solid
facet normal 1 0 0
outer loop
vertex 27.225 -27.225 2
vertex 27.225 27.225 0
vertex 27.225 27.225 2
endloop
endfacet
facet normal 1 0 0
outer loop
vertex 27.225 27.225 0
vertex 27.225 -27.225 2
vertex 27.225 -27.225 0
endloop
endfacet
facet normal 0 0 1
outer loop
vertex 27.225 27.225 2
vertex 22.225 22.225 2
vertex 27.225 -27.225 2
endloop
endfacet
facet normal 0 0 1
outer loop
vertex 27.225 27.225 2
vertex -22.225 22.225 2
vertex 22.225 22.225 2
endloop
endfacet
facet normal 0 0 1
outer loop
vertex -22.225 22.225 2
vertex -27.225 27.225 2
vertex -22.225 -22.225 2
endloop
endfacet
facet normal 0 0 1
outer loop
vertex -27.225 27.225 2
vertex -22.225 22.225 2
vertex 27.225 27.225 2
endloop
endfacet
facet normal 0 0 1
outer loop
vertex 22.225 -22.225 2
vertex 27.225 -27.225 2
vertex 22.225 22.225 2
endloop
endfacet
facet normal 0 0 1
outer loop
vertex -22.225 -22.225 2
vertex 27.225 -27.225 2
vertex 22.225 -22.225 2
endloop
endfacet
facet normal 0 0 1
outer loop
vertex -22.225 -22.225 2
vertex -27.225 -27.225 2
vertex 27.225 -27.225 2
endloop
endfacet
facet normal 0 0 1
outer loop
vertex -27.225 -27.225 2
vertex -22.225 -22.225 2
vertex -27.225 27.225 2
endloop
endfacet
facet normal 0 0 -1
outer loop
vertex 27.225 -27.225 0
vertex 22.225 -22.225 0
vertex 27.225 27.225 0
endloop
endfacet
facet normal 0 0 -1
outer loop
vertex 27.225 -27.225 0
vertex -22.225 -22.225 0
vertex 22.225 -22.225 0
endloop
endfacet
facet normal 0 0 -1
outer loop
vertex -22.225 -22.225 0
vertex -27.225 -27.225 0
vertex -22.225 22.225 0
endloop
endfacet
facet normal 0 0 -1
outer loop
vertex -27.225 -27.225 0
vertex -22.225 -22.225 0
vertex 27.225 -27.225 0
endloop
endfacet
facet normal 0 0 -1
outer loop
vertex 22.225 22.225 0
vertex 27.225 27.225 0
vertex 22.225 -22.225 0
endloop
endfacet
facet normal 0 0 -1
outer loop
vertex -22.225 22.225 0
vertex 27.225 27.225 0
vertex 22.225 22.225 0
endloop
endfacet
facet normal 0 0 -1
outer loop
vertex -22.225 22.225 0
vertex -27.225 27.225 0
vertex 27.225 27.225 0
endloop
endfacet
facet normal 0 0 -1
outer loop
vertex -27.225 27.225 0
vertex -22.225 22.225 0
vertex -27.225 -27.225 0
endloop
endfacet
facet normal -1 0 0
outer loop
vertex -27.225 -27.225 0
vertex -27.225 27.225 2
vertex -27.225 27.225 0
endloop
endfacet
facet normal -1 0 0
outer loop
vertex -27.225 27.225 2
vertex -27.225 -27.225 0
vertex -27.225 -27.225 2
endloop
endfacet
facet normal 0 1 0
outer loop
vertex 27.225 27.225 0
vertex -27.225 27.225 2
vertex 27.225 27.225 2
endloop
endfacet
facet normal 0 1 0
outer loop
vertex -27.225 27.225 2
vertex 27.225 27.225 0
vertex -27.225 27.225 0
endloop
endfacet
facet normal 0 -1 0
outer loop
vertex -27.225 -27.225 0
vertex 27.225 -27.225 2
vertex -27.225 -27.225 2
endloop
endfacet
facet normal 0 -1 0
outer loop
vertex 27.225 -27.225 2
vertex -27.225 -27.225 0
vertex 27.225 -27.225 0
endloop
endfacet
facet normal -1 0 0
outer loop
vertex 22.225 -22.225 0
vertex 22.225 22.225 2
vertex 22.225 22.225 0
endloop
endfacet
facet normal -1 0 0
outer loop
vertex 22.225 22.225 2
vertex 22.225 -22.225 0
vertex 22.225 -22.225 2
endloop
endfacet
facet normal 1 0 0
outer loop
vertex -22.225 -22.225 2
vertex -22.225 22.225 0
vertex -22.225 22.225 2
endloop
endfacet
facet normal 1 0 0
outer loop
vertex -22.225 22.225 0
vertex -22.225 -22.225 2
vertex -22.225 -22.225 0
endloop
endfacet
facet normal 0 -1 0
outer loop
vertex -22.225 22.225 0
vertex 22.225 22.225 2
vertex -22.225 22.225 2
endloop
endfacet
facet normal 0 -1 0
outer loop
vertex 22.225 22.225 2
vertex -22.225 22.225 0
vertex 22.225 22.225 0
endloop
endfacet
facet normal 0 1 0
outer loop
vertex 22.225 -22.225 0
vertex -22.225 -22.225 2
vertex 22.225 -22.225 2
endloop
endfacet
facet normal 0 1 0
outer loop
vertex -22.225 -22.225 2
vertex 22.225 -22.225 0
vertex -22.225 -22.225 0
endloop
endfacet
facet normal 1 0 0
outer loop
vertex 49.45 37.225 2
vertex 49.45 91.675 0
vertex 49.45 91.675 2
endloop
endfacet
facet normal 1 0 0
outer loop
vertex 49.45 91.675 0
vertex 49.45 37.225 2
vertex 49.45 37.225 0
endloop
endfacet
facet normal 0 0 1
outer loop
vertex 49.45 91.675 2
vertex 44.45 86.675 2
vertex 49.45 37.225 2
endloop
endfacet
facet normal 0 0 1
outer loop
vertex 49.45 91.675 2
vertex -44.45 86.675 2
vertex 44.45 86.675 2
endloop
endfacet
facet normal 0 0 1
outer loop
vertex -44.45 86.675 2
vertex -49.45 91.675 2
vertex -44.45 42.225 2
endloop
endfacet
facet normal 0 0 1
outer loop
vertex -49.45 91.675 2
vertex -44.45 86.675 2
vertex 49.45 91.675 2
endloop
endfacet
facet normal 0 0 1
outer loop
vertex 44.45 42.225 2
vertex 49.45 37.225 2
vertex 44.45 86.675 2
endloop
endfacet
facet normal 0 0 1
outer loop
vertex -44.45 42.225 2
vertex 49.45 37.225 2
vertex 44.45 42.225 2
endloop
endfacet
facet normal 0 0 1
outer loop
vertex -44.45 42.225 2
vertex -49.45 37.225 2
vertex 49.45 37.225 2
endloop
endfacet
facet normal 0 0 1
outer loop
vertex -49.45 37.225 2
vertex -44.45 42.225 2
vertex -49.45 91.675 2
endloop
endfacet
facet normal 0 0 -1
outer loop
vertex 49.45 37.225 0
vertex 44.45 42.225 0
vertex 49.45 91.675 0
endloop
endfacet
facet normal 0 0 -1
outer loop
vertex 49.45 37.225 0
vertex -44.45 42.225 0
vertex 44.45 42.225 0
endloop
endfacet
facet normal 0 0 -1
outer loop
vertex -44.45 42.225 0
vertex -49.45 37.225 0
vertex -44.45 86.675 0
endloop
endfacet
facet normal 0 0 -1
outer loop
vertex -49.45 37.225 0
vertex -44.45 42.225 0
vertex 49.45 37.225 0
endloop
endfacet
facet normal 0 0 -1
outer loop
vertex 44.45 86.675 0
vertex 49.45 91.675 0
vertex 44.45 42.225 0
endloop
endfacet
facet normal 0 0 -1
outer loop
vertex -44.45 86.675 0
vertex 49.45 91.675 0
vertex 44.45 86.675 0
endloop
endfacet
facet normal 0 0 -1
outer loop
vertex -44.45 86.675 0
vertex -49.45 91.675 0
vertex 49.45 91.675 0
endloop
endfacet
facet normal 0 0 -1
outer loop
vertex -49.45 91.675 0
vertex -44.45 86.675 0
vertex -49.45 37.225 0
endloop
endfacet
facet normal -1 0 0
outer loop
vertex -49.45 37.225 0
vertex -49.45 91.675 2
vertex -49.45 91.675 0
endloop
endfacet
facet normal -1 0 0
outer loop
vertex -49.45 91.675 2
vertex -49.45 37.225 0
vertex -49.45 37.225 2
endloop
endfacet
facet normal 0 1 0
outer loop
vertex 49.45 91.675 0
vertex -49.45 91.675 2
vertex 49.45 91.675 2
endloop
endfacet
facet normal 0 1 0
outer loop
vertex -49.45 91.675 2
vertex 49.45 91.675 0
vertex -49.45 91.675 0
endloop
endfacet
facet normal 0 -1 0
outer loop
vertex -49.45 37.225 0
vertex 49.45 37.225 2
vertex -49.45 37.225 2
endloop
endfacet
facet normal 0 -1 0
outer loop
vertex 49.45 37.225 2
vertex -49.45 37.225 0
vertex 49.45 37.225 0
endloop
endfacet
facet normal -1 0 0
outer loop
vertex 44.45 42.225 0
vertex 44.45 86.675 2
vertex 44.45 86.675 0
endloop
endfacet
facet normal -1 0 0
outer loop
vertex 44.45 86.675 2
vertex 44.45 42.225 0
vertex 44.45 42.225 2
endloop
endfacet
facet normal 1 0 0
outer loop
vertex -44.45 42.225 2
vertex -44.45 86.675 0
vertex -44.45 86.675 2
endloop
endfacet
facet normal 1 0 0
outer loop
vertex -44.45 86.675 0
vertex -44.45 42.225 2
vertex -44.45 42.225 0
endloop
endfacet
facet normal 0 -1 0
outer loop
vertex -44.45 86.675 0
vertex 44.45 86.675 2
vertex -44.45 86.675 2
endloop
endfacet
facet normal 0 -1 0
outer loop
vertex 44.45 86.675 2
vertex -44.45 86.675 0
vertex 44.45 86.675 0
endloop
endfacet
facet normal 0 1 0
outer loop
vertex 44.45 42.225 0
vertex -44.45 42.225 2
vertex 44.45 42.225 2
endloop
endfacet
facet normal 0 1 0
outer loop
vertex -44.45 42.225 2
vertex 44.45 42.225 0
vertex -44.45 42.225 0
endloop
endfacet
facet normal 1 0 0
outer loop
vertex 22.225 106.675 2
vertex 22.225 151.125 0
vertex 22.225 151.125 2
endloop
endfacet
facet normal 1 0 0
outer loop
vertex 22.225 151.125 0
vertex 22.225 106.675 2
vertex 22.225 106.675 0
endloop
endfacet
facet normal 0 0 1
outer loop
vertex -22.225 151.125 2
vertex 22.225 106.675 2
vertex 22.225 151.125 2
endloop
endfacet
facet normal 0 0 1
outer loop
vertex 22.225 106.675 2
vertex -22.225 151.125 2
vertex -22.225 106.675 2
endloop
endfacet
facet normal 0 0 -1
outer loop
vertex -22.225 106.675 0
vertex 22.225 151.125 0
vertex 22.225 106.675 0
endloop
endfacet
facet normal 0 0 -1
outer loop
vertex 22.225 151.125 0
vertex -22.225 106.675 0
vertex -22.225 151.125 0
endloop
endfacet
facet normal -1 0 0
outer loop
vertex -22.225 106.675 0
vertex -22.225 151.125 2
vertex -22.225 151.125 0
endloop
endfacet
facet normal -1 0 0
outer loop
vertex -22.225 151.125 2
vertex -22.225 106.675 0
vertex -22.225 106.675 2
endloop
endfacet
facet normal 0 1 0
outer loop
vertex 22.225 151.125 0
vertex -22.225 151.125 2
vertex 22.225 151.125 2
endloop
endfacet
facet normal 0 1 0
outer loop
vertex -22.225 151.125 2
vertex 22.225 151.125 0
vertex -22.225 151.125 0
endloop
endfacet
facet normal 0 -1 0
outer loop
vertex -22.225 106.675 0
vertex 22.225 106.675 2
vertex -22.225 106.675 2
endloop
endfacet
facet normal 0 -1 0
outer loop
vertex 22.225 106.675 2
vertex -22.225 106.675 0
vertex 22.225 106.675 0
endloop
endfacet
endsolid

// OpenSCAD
// Paint Stencils for Minecraft Block Pixel Details
// Print flat, use as masks for painting pixel variations on block faces.
//
// 1 pixel = 1.75" = 44.45mm

// ============================================================
// PARAMETERS
// ============================================================

PIXEL_MM        = 1.75 * 25.4;   // 44.45mm
STENCIL_THICK   = 2.0;           // mm — rigid enough to handle at this size
BORDER          = 5.0;           // mm — border around cutouts for rigidity

echo(str("Pixel size: ", PIXEL_MM, "mm (1.75\")"));

// ============================================================
// 1-PIXEL STENCIL — single square cutout, lay over surface and paint
// ============================================================
module stencil_1px() {
    frame = PIXEL_MM + 2 * BORDER;
    difference() {
        cube([frame, frame, STENCIL_THICK], center=true);
        cube([PIXEL_MM, PIXEL_MM, STENCIL_THICK + 1], center=true);
    }
}

// ============================================================
// 2-PIXEL STENCIL — 2×1 rectangular cutout
// ============================================================
module stencil_2px() {
    frame_x = 2 * PIXEL_MM + 2 * BORDER;
    frame_y = PIXEL_MM + 2 * BORDER;
    difference() {
        cube([frame_x, frame_y, STENCIL_THICK], center=true);
        cube([2 * PIXEL_MM, PIXEL_MM, STENCIL_THICK + 1], center=true);
    }
}

// ============================================================
// 1-PIXEL TRACE BLOCK — solid square you trace around with a pencil/marker
// ============================================================
module trace_1px() {
    cube([PIXEL_MM, PIXEL_MM, STENCIL_THICK], center=true);
}

// ============================================================
// RENDER — all three spaced apart
// ============================================================

translate([0, 0, STENCIL_THICK/2])
    stencil_1px();

translate([0, PIXEL_MM + 2*BORDER + 10, STENCIL_THICK/2])
    stencil_2px();

translate([0, 2*(PIXEL_MM + 2*BORDER + 10), STENCIL_THICK/2])
    trace_1px();
